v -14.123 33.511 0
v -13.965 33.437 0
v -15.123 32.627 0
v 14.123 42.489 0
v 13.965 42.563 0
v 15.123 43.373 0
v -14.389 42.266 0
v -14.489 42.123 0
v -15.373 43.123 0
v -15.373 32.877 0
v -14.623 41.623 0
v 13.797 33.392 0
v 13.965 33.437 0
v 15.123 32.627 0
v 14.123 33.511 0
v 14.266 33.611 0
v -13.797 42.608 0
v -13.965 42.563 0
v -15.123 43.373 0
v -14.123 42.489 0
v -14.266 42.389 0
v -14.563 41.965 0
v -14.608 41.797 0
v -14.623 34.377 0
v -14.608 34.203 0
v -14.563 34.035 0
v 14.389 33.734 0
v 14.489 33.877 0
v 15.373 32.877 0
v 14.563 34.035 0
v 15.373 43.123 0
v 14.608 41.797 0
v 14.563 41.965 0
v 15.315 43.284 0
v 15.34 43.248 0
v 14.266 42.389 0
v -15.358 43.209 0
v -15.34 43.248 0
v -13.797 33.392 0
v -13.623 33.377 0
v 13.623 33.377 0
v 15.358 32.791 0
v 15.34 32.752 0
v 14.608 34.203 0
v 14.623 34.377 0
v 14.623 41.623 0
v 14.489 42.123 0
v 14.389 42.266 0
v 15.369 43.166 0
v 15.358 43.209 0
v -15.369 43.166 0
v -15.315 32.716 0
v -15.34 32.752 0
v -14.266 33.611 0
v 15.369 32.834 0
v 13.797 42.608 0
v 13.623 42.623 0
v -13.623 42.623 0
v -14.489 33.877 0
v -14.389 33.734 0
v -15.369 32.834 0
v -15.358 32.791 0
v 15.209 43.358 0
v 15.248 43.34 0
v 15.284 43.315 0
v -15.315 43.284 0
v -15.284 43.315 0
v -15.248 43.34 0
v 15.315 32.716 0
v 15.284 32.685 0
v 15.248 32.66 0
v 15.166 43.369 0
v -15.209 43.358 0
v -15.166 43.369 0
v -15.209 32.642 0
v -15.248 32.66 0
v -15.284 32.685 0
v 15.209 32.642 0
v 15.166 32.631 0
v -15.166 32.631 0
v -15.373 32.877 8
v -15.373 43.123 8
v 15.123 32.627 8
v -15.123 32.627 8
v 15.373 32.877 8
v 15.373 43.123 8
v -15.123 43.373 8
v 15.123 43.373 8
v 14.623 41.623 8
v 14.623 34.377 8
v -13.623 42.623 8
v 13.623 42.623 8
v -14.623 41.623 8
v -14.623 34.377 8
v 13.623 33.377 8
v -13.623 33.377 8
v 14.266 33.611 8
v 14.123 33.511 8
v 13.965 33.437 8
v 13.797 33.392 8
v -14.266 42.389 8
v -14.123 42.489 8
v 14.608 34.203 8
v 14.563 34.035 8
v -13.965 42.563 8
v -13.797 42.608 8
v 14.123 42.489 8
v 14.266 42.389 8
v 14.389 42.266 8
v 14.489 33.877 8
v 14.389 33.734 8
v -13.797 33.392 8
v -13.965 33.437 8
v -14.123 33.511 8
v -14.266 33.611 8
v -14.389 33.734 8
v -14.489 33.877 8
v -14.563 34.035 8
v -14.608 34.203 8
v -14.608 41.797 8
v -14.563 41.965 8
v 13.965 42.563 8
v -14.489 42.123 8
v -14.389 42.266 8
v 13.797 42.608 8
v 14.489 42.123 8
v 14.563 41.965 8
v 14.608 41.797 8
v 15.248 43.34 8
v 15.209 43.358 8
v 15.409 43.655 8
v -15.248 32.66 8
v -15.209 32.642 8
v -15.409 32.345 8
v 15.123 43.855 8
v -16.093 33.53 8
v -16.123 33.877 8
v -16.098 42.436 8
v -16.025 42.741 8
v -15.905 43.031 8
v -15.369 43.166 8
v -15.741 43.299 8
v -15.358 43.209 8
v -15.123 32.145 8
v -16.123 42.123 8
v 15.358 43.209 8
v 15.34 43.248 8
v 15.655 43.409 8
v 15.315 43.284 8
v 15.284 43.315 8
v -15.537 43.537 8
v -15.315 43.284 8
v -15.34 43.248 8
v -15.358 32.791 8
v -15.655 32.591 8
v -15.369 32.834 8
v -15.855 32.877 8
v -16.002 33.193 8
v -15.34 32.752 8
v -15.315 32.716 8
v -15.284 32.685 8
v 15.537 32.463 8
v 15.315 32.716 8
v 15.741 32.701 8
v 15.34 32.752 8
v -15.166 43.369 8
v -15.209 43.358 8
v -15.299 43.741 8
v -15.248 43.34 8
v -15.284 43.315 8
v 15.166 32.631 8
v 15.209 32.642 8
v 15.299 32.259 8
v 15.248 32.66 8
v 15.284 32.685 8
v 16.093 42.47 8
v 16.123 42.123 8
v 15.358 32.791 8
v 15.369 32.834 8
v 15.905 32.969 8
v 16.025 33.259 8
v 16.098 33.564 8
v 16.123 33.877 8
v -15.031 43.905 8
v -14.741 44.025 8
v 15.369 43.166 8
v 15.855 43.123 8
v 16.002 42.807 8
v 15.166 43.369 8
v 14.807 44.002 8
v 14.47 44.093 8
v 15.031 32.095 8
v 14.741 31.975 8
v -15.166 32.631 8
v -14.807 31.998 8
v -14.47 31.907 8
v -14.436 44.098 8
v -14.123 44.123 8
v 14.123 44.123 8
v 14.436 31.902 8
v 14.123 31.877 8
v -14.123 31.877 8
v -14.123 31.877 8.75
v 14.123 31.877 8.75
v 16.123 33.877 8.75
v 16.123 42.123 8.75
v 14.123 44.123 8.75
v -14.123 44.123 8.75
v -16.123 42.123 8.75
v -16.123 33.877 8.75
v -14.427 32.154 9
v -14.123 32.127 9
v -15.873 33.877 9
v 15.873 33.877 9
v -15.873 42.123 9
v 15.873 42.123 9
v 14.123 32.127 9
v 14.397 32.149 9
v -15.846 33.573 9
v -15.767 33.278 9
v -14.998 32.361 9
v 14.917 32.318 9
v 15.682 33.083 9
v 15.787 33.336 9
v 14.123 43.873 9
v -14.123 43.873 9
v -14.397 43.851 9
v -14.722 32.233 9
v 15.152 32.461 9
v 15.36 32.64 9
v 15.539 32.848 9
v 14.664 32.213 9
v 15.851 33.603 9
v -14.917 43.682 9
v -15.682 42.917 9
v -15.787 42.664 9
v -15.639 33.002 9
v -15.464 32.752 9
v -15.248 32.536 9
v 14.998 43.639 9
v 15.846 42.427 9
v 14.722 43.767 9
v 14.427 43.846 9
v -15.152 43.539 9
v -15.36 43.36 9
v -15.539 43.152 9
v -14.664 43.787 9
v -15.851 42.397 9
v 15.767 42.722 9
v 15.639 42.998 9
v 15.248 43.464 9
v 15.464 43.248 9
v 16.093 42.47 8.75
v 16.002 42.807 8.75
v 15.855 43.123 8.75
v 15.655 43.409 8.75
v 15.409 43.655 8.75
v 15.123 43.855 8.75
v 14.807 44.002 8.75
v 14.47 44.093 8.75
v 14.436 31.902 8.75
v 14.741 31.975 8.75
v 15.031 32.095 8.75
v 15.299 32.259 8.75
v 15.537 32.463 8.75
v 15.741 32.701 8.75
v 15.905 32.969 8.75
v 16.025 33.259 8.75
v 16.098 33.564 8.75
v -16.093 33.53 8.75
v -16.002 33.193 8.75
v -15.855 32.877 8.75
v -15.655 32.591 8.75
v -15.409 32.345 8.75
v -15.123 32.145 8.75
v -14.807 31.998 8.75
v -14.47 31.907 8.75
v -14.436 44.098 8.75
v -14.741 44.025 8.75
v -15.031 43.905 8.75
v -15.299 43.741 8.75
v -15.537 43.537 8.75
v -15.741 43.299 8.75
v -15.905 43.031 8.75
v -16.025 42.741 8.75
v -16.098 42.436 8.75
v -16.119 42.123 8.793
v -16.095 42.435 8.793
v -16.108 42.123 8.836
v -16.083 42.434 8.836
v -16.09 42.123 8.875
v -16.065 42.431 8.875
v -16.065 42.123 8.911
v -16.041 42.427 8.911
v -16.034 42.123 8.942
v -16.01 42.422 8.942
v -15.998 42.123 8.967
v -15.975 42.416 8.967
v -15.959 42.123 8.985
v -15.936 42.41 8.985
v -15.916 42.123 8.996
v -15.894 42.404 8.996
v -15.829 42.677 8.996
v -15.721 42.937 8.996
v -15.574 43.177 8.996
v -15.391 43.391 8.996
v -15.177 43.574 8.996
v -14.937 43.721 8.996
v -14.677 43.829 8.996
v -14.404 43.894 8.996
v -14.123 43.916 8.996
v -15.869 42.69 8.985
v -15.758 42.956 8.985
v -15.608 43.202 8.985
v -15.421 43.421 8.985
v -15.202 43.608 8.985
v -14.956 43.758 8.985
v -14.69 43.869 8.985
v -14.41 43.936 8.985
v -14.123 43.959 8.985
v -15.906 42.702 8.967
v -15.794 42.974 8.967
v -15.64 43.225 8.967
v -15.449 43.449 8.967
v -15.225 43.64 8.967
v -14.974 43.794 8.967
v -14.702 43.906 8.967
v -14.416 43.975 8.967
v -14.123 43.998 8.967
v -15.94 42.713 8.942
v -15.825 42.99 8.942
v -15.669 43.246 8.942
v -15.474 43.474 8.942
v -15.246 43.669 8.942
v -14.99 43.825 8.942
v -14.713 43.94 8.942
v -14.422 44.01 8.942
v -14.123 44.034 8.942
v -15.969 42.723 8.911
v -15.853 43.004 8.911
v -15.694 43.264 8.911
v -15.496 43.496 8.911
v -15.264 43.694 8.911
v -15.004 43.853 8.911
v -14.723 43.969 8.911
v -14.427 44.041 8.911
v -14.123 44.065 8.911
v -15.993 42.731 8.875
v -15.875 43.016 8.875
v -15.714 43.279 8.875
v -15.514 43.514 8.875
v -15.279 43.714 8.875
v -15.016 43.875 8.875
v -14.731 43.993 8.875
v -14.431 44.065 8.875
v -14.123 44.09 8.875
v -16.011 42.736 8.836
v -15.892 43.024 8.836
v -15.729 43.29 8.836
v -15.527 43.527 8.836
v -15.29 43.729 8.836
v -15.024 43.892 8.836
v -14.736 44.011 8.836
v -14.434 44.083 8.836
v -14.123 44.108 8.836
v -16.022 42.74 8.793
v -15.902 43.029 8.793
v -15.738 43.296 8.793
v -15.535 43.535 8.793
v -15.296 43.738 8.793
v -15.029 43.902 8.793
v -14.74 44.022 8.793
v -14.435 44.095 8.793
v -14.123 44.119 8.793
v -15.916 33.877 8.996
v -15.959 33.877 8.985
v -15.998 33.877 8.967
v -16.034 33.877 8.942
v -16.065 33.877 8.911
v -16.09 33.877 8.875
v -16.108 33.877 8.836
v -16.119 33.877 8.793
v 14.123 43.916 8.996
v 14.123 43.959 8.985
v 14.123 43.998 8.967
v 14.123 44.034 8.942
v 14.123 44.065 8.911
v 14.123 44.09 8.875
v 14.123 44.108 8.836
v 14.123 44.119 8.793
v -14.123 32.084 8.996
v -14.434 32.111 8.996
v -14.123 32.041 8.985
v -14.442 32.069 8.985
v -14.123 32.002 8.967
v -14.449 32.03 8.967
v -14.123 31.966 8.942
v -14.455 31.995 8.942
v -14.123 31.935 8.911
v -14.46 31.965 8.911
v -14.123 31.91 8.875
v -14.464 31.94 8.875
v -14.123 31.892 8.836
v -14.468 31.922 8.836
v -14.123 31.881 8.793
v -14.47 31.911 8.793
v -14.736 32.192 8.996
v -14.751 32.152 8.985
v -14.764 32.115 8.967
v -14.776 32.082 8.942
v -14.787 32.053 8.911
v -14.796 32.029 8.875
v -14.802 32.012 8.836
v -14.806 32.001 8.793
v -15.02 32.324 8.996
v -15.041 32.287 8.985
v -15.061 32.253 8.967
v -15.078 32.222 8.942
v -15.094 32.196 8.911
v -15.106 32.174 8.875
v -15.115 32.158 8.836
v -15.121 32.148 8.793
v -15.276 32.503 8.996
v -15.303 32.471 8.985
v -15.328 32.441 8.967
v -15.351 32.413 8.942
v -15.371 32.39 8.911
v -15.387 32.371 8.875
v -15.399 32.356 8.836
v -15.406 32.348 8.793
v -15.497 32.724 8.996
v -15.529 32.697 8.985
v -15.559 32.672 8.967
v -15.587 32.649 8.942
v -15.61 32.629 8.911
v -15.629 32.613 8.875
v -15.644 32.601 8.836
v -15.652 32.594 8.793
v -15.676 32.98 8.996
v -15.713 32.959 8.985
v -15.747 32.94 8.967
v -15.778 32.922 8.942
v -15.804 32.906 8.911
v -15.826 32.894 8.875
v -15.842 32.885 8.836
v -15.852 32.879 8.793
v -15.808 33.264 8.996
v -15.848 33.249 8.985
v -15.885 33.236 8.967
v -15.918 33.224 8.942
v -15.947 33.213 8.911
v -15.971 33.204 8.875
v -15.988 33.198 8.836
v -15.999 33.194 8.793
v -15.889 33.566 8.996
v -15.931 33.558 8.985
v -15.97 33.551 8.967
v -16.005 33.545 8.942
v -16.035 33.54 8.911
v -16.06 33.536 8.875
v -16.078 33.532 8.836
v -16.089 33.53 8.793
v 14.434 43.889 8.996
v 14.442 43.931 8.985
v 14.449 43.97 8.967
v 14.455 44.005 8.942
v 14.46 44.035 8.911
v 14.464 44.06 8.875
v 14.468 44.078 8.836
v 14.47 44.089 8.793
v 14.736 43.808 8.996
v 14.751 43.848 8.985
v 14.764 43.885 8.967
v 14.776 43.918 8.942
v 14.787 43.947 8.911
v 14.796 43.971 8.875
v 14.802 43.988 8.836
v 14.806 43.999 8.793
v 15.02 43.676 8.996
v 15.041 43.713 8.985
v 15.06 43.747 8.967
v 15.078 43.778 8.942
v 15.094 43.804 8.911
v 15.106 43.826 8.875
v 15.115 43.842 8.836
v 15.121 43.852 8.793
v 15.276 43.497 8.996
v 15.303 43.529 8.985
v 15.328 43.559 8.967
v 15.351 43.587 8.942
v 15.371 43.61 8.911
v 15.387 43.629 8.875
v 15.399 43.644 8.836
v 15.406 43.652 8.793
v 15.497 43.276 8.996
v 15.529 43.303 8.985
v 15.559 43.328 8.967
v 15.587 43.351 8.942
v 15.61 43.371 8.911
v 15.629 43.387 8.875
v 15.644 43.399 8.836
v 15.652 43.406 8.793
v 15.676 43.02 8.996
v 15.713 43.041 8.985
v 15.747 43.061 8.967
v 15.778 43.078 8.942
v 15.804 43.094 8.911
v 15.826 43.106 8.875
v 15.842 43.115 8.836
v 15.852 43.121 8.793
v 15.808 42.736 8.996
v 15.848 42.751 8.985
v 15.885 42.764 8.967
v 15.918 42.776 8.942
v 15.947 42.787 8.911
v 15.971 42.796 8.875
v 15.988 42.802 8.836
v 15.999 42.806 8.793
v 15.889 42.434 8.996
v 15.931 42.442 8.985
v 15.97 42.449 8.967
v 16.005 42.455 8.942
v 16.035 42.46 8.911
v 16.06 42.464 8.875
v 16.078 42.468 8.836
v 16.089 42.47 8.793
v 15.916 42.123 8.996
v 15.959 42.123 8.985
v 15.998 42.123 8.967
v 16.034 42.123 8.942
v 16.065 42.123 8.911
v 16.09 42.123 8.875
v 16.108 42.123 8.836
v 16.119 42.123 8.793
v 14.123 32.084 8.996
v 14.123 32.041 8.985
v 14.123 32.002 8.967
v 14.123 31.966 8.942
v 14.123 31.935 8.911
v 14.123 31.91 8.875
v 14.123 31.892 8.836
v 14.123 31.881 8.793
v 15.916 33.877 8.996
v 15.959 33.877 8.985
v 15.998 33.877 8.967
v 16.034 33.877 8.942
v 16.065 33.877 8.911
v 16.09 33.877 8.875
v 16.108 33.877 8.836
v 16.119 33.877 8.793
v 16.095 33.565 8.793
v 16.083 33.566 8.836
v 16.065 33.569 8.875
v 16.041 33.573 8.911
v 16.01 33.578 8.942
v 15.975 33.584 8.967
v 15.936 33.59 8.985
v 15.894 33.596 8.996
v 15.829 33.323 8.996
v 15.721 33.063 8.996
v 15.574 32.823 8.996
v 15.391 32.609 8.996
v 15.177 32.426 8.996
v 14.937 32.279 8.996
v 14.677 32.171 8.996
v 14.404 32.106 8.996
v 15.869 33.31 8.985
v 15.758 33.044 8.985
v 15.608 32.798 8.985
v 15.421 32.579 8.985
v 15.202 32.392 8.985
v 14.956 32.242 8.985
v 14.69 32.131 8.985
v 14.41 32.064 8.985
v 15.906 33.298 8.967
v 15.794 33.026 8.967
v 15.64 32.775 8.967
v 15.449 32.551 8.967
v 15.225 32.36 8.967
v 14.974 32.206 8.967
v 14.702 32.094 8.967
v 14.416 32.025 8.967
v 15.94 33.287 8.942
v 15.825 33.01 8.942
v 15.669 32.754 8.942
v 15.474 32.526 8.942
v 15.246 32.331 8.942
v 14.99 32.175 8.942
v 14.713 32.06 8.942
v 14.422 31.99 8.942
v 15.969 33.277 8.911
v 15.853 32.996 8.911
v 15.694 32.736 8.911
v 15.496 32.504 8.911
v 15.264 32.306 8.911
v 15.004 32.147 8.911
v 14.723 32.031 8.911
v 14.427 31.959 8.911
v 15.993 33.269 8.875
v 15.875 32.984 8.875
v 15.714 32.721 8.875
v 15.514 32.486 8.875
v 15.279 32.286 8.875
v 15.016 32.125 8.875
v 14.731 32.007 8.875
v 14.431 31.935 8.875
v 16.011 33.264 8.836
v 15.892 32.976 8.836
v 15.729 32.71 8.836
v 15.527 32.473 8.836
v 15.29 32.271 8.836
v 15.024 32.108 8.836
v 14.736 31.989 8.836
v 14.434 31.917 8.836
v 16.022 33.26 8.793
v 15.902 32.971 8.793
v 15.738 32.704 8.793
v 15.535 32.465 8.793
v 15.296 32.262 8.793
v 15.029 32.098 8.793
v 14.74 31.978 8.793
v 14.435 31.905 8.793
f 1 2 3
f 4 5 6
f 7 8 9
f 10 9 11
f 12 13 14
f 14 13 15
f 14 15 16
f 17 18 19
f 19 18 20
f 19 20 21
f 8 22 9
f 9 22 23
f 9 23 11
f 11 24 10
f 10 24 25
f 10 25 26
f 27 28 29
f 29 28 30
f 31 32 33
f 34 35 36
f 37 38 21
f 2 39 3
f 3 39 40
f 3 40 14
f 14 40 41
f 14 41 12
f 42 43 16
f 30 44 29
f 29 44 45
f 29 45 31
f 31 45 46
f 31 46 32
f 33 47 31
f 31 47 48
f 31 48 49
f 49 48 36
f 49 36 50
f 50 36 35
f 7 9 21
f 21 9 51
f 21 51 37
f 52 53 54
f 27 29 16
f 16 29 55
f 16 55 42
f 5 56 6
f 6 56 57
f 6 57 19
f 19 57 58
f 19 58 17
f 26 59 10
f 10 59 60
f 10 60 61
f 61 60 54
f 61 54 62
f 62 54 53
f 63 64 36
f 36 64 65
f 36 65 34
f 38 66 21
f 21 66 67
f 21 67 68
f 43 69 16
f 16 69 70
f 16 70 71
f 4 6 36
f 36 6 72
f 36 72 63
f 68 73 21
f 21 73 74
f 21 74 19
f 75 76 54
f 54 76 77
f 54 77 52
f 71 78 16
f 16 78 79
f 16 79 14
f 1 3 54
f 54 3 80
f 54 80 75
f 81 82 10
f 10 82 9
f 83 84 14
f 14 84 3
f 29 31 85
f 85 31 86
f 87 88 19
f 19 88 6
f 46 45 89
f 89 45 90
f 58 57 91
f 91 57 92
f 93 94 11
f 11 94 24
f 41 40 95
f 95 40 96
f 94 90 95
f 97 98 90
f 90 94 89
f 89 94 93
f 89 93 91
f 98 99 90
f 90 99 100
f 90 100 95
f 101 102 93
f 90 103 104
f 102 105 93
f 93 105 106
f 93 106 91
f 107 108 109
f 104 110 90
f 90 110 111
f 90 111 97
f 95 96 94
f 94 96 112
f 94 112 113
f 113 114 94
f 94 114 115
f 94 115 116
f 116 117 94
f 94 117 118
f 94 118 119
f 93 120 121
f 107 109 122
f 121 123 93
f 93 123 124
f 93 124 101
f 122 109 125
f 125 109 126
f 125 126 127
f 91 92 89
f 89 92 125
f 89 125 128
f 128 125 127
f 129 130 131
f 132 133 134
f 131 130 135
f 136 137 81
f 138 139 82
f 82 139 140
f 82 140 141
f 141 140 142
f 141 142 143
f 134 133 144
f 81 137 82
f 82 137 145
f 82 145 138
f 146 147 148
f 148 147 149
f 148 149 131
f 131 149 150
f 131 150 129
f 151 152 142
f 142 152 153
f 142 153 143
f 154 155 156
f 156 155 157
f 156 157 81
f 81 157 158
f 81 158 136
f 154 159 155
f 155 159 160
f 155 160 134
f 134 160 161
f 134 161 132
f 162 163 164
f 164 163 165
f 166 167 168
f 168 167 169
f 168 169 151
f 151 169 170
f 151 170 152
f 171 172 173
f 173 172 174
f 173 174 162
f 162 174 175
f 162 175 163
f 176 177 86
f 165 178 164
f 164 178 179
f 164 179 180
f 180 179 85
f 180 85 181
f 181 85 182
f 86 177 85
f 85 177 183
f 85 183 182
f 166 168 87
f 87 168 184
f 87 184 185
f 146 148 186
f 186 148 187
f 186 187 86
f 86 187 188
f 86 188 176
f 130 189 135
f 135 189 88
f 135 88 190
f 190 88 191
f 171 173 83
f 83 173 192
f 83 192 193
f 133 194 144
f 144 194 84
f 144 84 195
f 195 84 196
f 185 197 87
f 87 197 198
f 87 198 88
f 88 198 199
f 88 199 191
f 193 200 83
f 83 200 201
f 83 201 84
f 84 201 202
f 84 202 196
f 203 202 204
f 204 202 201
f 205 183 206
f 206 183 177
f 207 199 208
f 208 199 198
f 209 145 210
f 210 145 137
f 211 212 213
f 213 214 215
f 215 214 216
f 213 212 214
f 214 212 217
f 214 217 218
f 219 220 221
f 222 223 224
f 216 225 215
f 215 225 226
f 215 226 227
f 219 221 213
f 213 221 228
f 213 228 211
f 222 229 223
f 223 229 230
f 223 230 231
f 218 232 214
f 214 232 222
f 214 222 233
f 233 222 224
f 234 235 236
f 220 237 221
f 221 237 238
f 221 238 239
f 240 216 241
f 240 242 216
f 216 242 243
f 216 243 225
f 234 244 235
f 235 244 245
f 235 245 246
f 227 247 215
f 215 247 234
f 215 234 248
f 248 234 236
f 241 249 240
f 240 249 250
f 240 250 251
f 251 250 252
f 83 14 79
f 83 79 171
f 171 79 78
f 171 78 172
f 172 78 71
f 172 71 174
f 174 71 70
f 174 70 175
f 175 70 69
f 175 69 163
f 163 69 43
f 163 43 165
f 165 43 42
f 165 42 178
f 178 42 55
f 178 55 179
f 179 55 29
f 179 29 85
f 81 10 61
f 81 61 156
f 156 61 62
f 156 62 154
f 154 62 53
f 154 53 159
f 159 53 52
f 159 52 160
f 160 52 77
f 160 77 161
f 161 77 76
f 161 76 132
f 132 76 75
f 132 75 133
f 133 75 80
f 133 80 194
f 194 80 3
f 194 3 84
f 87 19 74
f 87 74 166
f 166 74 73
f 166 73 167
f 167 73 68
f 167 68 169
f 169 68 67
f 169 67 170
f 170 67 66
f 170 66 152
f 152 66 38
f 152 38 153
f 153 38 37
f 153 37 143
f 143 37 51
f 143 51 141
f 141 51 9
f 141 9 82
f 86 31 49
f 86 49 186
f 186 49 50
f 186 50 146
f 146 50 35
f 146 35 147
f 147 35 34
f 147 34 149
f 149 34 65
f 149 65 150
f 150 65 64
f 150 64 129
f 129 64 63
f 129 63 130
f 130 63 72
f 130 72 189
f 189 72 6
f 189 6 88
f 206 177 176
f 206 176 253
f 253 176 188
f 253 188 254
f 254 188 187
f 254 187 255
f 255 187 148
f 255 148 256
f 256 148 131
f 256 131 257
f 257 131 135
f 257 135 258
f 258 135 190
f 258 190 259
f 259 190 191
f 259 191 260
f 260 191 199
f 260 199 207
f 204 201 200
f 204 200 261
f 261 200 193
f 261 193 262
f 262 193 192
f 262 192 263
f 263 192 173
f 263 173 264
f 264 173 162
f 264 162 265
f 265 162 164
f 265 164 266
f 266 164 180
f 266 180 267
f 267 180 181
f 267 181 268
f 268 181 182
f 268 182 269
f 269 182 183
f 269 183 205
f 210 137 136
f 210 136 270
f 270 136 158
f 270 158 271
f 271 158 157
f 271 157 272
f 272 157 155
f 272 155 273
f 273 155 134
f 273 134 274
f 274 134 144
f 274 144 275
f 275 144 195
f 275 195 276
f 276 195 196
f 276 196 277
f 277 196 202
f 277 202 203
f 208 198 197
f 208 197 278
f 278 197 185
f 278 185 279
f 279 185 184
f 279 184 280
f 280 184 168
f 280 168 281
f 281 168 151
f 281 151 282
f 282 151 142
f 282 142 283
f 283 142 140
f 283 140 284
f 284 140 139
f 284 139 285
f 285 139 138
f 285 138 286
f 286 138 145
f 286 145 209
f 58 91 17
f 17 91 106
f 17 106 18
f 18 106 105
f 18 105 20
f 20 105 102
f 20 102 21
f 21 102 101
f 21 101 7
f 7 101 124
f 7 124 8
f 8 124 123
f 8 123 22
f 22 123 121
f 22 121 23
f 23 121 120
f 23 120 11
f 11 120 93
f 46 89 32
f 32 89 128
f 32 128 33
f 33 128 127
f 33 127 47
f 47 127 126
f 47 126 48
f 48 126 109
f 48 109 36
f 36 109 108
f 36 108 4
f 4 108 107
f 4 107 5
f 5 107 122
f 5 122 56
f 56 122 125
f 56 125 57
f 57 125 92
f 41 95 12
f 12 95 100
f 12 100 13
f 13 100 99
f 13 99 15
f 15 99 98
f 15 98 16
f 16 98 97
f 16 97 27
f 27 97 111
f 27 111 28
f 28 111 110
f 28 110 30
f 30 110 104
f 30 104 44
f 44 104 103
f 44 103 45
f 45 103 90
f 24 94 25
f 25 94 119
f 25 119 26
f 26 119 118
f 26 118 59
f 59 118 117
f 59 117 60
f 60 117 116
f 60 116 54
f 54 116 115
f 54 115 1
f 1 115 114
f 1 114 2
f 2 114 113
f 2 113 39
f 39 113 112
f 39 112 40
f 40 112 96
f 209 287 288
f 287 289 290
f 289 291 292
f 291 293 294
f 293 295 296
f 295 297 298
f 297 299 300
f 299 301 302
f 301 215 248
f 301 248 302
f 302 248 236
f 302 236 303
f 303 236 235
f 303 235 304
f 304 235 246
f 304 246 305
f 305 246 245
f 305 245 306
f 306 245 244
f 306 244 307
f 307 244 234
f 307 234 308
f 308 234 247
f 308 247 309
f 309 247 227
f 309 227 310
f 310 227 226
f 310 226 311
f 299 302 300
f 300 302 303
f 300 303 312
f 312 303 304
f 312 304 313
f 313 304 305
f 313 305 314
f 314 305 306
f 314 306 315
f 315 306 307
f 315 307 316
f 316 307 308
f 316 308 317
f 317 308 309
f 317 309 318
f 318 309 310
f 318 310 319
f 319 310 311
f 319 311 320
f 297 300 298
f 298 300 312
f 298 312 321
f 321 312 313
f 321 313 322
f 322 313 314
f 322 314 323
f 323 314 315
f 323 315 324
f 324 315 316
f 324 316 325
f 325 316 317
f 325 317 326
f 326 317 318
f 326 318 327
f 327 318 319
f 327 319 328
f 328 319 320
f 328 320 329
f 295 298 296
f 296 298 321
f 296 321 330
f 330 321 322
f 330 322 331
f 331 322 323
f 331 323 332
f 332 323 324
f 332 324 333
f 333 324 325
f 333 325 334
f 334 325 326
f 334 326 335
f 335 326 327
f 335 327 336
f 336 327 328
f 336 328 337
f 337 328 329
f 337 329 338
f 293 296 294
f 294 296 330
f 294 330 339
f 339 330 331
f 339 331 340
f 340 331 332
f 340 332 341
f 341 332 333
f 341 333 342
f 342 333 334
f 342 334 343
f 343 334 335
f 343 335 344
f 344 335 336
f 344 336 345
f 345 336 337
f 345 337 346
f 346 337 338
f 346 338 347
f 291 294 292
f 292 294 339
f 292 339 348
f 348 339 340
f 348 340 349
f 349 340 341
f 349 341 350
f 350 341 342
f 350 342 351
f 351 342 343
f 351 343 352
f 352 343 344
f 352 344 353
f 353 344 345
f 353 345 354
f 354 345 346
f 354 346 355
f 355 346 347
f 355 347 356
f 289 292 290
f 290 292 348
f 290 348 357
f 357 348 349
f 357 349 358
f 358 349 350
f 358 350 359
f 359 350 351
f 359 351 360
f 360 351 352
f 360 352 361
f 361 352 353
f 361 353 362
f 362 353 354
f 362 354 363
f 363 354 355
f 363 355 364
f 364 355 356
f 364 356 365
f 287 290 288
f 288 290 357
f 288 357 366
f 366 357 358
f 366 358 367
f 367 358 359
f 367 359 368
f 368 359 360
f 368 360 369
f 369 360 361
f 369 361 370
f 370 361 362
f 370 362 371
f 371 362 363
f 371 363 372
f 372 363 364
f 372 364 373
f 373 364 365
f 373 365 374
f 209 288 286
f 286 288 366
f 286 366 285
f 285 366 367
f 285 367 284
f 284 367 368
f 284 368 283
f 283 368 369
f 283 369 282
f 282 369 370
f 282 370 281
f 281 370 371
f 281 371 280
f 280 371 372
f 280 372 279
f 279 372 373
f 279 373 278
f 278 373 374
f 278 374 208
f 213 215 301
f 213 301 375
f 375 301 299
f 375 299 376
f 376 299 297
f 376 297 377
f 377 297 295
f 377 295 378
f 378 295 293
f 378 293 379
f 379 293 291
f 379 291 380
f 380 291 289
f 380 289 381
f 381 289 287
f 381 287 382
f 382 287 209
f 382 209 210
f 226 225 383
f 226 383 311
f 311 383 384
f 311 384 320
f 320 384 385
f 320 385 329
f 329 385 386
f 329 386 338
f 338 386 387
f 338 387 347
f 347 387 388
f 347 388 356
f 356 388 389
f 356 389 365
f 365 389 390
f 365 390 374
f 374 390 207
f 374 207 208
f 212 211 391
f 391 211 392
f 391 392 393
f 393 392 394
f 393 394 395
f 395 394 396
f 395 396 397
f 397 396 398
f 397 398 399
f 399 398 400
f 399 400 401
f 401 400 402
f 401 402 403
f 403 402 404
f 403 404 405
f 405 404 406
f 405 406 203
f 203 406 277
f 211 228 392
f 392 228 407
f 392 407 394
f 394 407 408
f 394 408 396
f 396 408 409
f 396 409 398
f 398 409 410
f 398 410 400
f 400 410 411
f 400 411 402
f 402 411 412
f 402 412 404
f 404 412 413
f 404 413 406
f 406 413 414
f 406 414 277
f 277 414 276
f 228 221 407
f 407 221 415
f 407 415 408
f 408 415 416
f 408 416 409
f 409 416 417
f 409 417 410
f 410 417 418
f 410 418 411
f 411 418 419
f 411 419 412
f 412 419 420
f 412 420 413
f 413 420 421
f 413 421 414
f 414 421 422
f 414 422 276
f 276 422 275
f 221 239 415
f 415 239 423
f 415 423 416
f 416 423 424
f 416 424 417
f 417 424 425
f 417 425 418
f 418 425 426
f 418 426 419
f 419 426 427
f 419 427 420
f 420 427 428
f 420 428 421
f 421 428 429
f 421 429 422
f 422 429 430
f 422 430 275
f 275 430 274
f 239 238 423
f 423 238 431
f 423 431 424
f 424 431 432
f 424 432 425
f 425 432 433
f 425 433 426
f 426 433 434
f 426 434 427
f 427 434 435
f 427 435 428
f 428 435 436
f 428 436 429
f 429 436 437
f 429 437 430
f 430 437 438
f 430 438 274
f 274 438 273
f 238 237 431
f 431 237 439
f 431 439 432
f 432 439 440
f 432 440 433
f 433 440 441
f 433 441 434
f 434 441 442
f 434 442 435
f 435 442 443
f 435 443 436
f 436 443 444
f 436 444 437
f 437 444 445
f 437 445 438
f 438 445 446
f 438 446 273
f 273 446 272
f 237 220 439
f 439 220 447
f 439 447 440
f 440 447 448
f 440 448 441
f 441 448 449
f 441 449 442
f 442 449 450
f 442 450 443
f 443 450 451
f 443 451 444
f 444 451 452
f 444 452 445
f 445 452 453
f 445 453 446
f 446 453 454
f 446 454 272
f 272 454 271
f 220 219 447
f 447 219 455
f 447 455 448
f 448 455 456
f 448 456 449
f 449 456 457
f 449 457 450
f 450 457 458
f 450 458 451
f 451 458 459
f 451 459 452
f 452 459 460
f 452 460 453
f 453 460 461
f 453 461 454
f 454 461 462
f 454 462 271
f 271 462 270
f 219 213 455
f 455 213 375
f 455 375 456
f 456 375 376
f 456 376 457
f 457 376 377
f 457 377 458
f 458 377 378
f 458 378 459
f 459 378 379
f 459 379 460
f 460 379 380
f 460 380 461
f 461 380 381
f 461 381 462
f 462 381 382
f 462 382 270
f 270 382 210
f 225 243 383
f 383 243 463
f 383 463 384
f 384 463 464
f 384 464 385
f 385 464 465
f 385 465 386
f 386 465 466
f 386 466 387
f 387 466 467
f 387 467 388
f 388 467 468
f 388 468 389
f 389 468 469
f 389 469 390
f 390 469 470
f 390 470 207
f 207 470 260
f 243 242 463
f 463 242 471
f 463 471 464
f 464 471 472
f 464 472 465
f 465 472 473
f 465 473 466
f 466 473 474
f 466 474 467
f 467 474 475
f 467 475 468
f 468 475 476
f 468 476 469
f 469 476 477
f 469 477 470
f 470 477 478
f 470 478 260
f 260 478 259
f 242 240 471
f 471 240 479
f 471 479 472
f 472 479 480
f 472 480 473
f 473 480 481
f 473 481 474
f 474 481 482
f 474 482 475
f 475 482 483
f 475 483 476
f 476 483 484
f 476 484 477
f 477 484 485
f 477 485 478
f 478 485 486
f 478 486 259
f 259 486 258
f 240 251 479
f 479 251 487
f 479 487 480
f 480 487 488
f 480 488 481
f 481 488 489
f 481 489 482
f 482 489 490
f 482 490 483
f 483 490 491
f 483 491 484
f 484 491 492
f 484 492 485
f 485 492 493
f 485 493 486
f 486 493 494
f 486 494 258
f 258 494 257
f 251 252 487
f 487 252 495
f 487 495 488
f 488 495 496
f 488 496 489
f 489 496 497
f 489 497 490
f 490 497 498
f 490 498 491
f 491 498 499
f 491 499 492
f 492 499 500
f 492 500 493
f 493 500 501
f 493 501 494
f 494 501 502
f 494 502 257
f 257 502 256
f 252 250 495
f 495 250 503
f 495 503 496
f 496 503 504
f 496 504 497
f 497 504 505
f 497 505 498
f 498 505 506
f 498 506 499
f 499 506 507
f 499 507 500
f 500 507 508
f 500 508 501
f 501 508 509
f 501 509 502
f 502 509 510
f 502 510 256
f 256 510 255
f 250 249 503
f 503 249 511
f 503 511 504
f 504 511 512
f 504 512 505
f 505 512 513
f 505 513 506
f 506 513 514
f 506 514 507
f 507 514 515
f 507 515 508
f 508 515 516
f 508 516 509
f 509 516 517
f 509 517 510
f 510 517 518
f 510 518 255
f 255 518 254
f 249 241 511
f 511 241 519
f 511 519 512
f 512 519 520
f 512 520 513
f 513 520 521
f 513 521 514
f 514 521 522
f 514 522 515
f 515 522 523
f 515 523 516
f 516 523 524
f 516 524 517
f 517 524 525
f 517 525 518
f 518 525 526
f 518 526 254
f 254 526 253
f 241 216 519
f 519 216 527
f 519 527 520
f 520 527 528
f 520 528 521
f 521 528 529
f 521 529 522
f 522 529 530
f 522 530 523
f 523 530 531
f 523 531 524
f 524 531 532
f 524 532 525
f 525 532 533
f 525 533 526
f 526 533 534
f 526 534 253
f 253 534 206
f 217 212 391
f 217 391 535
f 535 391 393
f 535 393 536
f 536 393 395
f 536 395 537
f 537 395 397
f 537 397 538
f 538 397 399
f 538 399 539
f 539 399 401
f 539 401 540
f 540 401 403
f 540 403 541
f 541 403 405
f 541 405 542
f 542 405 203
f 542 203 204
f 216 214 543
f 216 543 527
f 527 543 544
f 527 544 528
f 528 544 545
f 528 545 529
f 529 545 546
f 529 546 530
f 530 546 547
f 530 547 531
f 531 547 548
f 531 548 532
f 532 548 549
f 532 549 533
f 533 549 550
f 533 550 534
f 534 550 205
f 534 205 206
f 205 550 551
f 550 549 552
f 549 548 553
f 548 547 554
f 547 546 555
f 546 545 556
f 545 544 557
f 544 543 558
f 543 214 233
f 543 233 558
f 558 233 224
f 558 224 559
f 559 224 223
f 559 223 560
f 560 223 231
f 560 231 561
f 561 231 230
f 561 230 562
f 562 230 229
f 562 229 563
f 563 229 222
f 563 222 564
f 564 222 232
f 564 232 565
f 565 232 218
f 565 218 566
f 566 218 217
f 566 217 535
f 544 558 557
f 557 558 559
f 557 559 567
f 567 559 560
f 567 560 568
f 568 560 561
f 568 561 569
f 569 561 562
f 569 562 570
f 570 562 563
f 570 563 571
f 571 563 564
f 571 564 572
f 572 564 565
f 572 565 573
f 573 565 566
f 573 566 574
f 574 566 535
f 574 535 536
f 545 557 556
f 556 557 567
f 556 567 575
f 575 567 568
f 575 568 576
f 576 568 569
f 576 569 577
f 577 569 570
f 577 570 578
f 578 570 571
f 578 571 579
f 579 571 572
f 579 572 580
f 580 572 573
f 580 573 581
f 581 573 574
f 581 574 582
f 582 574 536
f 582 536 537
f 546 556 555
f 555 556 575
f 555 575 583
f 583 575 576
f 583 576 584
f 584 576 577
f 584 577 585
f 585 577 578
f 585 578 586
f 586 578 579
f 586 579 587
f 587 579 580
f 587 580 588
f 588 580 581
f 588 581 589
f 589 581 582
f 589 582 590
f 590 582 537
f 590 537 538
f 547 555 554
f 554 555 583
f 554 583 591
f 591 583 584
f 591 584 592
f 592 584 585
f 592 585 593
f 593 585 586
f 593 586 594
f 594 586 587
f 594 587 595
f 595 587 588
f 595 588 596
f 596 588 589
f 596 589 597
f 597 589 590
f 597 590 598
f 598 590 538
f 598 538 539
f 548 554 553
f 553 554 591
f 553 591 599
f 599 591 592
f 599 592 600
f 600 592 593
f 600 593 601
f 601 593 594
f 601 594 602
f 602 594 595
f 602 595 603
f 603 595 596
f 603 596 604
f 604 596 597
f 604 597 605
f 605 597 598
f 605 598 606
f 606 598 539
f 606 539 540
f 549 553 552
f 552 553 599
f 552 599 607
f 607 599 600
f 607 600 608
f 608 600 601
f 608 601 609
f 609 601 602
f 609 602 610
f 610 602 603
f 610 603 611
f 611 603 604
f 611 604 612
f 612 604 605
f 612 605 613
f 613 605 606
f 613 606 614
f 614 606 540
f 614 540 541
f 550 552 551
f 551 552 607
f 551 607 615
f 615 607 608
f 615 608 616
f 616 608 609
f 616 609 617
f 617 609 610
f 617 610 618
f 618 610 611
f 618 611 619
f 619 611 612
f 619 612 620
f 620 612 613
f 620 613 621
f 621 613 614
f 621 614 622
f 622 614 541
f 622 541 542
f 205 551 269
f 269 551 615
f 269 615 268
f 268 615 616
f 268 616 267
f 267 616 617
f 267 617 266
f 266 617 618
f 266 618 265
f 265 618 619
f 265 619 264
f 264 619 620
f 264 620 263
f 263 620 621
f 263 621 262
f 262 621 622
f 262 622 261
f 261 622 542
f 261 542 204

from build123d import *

# Parameters (mm, degrees)
SKETCH1_W           = 30.746
SKETCH1_H           = 10.746
SKETCH1_W_2         = 29.246
SKETCH1_H_2         = 9.246
BOSS_EXTRUDE1_DEPTH = 8
SKETCH2_W           = 32.246
SKETCH2_H           = 12.246
BOSS_EXTRUDE2_DEPTH = 1
FILLET2_R           = 0.25
FILLET3_R           = 2
FILLET4_R           = 1
FILLET5_R           = 0.25


with BuildPart() as part:
    # Sketch1 → Boss-Extrude1 (new body)
    with BuildSketch(Plane.XY):
        with Locations((0, 38)):
            Rectangle(SKETCH1_W, SKETCH1_H)
        with Locations((0, 38)):
            Rectangle(SKETCH1_W_2, SKETCH1_H_2, mode=Mode.SUBTRACT)
    extrude(amount=BOSS_EXTRUDE1_DEPTH)

    # Sketch2 → Boss-Extrude2 (add)
    with BuildSketch(Plane.XY.offset(8)):
        with Locations((0, 38)):
            Rectangle(SKETCH2_W, SKETCH2_H)
    extrude(amount=BOSS_EXTRUDE2_DEPTH)

    # Fillet2
    fillet2_edges = [part.edges().sort_by_distance(p)[0] for p in [
        (-15.373, 43.373, 4),
        (15.373, 43.373, 4),
        (15.373, 32.627, 4),
        (-15.373, 32.627, 4),
    ]]
    fillet(fillet2_edges, radius=FILLET2_R)

    # Fillet3
    fillet3_edges = [part.edges().sort_by_distance(p)[0] for p in [
        (-16.123, 31.877, 8.5),
        (16.123, 31.877, 8.5),
        (16.123, 44.123, 8.5),
        (-16.123, 44.123, 8.5),
    ]]
    fillet(fillet3_edges, radius=FILLET3_R)

    # Fillet4
    fillet4_edges = [part.edges().sort_by_distance(p)[0] for p in [
        (14.623, 33.377, 4),
        (14.623, 42.623, 4),
        (-14.623, 42.623, 4),
        (-14.623, 33.377, 4),
    ]]
    fillet(fillet4_edges, radius=FILLET4_R)

    # Fillet5
    fillet5_edges = [part.edges().sort_by_distance(p)[0] for p in [
        (0, 44.123, 9),
        (16.123, 38, 9),
        (0, 31.877, 9),
        (-16.123, 38, 9),
        (-15.537213562, 43.537213562, 9),
        (-15.537213562, 32.462786438, 9),
        (15.537213562, 32.462786438, 9),
        (15.537213562, 43.537213562, 9),
    ]]
    fillet(fillet5_edges, radius=FILLET5_R)


solid = part.part
